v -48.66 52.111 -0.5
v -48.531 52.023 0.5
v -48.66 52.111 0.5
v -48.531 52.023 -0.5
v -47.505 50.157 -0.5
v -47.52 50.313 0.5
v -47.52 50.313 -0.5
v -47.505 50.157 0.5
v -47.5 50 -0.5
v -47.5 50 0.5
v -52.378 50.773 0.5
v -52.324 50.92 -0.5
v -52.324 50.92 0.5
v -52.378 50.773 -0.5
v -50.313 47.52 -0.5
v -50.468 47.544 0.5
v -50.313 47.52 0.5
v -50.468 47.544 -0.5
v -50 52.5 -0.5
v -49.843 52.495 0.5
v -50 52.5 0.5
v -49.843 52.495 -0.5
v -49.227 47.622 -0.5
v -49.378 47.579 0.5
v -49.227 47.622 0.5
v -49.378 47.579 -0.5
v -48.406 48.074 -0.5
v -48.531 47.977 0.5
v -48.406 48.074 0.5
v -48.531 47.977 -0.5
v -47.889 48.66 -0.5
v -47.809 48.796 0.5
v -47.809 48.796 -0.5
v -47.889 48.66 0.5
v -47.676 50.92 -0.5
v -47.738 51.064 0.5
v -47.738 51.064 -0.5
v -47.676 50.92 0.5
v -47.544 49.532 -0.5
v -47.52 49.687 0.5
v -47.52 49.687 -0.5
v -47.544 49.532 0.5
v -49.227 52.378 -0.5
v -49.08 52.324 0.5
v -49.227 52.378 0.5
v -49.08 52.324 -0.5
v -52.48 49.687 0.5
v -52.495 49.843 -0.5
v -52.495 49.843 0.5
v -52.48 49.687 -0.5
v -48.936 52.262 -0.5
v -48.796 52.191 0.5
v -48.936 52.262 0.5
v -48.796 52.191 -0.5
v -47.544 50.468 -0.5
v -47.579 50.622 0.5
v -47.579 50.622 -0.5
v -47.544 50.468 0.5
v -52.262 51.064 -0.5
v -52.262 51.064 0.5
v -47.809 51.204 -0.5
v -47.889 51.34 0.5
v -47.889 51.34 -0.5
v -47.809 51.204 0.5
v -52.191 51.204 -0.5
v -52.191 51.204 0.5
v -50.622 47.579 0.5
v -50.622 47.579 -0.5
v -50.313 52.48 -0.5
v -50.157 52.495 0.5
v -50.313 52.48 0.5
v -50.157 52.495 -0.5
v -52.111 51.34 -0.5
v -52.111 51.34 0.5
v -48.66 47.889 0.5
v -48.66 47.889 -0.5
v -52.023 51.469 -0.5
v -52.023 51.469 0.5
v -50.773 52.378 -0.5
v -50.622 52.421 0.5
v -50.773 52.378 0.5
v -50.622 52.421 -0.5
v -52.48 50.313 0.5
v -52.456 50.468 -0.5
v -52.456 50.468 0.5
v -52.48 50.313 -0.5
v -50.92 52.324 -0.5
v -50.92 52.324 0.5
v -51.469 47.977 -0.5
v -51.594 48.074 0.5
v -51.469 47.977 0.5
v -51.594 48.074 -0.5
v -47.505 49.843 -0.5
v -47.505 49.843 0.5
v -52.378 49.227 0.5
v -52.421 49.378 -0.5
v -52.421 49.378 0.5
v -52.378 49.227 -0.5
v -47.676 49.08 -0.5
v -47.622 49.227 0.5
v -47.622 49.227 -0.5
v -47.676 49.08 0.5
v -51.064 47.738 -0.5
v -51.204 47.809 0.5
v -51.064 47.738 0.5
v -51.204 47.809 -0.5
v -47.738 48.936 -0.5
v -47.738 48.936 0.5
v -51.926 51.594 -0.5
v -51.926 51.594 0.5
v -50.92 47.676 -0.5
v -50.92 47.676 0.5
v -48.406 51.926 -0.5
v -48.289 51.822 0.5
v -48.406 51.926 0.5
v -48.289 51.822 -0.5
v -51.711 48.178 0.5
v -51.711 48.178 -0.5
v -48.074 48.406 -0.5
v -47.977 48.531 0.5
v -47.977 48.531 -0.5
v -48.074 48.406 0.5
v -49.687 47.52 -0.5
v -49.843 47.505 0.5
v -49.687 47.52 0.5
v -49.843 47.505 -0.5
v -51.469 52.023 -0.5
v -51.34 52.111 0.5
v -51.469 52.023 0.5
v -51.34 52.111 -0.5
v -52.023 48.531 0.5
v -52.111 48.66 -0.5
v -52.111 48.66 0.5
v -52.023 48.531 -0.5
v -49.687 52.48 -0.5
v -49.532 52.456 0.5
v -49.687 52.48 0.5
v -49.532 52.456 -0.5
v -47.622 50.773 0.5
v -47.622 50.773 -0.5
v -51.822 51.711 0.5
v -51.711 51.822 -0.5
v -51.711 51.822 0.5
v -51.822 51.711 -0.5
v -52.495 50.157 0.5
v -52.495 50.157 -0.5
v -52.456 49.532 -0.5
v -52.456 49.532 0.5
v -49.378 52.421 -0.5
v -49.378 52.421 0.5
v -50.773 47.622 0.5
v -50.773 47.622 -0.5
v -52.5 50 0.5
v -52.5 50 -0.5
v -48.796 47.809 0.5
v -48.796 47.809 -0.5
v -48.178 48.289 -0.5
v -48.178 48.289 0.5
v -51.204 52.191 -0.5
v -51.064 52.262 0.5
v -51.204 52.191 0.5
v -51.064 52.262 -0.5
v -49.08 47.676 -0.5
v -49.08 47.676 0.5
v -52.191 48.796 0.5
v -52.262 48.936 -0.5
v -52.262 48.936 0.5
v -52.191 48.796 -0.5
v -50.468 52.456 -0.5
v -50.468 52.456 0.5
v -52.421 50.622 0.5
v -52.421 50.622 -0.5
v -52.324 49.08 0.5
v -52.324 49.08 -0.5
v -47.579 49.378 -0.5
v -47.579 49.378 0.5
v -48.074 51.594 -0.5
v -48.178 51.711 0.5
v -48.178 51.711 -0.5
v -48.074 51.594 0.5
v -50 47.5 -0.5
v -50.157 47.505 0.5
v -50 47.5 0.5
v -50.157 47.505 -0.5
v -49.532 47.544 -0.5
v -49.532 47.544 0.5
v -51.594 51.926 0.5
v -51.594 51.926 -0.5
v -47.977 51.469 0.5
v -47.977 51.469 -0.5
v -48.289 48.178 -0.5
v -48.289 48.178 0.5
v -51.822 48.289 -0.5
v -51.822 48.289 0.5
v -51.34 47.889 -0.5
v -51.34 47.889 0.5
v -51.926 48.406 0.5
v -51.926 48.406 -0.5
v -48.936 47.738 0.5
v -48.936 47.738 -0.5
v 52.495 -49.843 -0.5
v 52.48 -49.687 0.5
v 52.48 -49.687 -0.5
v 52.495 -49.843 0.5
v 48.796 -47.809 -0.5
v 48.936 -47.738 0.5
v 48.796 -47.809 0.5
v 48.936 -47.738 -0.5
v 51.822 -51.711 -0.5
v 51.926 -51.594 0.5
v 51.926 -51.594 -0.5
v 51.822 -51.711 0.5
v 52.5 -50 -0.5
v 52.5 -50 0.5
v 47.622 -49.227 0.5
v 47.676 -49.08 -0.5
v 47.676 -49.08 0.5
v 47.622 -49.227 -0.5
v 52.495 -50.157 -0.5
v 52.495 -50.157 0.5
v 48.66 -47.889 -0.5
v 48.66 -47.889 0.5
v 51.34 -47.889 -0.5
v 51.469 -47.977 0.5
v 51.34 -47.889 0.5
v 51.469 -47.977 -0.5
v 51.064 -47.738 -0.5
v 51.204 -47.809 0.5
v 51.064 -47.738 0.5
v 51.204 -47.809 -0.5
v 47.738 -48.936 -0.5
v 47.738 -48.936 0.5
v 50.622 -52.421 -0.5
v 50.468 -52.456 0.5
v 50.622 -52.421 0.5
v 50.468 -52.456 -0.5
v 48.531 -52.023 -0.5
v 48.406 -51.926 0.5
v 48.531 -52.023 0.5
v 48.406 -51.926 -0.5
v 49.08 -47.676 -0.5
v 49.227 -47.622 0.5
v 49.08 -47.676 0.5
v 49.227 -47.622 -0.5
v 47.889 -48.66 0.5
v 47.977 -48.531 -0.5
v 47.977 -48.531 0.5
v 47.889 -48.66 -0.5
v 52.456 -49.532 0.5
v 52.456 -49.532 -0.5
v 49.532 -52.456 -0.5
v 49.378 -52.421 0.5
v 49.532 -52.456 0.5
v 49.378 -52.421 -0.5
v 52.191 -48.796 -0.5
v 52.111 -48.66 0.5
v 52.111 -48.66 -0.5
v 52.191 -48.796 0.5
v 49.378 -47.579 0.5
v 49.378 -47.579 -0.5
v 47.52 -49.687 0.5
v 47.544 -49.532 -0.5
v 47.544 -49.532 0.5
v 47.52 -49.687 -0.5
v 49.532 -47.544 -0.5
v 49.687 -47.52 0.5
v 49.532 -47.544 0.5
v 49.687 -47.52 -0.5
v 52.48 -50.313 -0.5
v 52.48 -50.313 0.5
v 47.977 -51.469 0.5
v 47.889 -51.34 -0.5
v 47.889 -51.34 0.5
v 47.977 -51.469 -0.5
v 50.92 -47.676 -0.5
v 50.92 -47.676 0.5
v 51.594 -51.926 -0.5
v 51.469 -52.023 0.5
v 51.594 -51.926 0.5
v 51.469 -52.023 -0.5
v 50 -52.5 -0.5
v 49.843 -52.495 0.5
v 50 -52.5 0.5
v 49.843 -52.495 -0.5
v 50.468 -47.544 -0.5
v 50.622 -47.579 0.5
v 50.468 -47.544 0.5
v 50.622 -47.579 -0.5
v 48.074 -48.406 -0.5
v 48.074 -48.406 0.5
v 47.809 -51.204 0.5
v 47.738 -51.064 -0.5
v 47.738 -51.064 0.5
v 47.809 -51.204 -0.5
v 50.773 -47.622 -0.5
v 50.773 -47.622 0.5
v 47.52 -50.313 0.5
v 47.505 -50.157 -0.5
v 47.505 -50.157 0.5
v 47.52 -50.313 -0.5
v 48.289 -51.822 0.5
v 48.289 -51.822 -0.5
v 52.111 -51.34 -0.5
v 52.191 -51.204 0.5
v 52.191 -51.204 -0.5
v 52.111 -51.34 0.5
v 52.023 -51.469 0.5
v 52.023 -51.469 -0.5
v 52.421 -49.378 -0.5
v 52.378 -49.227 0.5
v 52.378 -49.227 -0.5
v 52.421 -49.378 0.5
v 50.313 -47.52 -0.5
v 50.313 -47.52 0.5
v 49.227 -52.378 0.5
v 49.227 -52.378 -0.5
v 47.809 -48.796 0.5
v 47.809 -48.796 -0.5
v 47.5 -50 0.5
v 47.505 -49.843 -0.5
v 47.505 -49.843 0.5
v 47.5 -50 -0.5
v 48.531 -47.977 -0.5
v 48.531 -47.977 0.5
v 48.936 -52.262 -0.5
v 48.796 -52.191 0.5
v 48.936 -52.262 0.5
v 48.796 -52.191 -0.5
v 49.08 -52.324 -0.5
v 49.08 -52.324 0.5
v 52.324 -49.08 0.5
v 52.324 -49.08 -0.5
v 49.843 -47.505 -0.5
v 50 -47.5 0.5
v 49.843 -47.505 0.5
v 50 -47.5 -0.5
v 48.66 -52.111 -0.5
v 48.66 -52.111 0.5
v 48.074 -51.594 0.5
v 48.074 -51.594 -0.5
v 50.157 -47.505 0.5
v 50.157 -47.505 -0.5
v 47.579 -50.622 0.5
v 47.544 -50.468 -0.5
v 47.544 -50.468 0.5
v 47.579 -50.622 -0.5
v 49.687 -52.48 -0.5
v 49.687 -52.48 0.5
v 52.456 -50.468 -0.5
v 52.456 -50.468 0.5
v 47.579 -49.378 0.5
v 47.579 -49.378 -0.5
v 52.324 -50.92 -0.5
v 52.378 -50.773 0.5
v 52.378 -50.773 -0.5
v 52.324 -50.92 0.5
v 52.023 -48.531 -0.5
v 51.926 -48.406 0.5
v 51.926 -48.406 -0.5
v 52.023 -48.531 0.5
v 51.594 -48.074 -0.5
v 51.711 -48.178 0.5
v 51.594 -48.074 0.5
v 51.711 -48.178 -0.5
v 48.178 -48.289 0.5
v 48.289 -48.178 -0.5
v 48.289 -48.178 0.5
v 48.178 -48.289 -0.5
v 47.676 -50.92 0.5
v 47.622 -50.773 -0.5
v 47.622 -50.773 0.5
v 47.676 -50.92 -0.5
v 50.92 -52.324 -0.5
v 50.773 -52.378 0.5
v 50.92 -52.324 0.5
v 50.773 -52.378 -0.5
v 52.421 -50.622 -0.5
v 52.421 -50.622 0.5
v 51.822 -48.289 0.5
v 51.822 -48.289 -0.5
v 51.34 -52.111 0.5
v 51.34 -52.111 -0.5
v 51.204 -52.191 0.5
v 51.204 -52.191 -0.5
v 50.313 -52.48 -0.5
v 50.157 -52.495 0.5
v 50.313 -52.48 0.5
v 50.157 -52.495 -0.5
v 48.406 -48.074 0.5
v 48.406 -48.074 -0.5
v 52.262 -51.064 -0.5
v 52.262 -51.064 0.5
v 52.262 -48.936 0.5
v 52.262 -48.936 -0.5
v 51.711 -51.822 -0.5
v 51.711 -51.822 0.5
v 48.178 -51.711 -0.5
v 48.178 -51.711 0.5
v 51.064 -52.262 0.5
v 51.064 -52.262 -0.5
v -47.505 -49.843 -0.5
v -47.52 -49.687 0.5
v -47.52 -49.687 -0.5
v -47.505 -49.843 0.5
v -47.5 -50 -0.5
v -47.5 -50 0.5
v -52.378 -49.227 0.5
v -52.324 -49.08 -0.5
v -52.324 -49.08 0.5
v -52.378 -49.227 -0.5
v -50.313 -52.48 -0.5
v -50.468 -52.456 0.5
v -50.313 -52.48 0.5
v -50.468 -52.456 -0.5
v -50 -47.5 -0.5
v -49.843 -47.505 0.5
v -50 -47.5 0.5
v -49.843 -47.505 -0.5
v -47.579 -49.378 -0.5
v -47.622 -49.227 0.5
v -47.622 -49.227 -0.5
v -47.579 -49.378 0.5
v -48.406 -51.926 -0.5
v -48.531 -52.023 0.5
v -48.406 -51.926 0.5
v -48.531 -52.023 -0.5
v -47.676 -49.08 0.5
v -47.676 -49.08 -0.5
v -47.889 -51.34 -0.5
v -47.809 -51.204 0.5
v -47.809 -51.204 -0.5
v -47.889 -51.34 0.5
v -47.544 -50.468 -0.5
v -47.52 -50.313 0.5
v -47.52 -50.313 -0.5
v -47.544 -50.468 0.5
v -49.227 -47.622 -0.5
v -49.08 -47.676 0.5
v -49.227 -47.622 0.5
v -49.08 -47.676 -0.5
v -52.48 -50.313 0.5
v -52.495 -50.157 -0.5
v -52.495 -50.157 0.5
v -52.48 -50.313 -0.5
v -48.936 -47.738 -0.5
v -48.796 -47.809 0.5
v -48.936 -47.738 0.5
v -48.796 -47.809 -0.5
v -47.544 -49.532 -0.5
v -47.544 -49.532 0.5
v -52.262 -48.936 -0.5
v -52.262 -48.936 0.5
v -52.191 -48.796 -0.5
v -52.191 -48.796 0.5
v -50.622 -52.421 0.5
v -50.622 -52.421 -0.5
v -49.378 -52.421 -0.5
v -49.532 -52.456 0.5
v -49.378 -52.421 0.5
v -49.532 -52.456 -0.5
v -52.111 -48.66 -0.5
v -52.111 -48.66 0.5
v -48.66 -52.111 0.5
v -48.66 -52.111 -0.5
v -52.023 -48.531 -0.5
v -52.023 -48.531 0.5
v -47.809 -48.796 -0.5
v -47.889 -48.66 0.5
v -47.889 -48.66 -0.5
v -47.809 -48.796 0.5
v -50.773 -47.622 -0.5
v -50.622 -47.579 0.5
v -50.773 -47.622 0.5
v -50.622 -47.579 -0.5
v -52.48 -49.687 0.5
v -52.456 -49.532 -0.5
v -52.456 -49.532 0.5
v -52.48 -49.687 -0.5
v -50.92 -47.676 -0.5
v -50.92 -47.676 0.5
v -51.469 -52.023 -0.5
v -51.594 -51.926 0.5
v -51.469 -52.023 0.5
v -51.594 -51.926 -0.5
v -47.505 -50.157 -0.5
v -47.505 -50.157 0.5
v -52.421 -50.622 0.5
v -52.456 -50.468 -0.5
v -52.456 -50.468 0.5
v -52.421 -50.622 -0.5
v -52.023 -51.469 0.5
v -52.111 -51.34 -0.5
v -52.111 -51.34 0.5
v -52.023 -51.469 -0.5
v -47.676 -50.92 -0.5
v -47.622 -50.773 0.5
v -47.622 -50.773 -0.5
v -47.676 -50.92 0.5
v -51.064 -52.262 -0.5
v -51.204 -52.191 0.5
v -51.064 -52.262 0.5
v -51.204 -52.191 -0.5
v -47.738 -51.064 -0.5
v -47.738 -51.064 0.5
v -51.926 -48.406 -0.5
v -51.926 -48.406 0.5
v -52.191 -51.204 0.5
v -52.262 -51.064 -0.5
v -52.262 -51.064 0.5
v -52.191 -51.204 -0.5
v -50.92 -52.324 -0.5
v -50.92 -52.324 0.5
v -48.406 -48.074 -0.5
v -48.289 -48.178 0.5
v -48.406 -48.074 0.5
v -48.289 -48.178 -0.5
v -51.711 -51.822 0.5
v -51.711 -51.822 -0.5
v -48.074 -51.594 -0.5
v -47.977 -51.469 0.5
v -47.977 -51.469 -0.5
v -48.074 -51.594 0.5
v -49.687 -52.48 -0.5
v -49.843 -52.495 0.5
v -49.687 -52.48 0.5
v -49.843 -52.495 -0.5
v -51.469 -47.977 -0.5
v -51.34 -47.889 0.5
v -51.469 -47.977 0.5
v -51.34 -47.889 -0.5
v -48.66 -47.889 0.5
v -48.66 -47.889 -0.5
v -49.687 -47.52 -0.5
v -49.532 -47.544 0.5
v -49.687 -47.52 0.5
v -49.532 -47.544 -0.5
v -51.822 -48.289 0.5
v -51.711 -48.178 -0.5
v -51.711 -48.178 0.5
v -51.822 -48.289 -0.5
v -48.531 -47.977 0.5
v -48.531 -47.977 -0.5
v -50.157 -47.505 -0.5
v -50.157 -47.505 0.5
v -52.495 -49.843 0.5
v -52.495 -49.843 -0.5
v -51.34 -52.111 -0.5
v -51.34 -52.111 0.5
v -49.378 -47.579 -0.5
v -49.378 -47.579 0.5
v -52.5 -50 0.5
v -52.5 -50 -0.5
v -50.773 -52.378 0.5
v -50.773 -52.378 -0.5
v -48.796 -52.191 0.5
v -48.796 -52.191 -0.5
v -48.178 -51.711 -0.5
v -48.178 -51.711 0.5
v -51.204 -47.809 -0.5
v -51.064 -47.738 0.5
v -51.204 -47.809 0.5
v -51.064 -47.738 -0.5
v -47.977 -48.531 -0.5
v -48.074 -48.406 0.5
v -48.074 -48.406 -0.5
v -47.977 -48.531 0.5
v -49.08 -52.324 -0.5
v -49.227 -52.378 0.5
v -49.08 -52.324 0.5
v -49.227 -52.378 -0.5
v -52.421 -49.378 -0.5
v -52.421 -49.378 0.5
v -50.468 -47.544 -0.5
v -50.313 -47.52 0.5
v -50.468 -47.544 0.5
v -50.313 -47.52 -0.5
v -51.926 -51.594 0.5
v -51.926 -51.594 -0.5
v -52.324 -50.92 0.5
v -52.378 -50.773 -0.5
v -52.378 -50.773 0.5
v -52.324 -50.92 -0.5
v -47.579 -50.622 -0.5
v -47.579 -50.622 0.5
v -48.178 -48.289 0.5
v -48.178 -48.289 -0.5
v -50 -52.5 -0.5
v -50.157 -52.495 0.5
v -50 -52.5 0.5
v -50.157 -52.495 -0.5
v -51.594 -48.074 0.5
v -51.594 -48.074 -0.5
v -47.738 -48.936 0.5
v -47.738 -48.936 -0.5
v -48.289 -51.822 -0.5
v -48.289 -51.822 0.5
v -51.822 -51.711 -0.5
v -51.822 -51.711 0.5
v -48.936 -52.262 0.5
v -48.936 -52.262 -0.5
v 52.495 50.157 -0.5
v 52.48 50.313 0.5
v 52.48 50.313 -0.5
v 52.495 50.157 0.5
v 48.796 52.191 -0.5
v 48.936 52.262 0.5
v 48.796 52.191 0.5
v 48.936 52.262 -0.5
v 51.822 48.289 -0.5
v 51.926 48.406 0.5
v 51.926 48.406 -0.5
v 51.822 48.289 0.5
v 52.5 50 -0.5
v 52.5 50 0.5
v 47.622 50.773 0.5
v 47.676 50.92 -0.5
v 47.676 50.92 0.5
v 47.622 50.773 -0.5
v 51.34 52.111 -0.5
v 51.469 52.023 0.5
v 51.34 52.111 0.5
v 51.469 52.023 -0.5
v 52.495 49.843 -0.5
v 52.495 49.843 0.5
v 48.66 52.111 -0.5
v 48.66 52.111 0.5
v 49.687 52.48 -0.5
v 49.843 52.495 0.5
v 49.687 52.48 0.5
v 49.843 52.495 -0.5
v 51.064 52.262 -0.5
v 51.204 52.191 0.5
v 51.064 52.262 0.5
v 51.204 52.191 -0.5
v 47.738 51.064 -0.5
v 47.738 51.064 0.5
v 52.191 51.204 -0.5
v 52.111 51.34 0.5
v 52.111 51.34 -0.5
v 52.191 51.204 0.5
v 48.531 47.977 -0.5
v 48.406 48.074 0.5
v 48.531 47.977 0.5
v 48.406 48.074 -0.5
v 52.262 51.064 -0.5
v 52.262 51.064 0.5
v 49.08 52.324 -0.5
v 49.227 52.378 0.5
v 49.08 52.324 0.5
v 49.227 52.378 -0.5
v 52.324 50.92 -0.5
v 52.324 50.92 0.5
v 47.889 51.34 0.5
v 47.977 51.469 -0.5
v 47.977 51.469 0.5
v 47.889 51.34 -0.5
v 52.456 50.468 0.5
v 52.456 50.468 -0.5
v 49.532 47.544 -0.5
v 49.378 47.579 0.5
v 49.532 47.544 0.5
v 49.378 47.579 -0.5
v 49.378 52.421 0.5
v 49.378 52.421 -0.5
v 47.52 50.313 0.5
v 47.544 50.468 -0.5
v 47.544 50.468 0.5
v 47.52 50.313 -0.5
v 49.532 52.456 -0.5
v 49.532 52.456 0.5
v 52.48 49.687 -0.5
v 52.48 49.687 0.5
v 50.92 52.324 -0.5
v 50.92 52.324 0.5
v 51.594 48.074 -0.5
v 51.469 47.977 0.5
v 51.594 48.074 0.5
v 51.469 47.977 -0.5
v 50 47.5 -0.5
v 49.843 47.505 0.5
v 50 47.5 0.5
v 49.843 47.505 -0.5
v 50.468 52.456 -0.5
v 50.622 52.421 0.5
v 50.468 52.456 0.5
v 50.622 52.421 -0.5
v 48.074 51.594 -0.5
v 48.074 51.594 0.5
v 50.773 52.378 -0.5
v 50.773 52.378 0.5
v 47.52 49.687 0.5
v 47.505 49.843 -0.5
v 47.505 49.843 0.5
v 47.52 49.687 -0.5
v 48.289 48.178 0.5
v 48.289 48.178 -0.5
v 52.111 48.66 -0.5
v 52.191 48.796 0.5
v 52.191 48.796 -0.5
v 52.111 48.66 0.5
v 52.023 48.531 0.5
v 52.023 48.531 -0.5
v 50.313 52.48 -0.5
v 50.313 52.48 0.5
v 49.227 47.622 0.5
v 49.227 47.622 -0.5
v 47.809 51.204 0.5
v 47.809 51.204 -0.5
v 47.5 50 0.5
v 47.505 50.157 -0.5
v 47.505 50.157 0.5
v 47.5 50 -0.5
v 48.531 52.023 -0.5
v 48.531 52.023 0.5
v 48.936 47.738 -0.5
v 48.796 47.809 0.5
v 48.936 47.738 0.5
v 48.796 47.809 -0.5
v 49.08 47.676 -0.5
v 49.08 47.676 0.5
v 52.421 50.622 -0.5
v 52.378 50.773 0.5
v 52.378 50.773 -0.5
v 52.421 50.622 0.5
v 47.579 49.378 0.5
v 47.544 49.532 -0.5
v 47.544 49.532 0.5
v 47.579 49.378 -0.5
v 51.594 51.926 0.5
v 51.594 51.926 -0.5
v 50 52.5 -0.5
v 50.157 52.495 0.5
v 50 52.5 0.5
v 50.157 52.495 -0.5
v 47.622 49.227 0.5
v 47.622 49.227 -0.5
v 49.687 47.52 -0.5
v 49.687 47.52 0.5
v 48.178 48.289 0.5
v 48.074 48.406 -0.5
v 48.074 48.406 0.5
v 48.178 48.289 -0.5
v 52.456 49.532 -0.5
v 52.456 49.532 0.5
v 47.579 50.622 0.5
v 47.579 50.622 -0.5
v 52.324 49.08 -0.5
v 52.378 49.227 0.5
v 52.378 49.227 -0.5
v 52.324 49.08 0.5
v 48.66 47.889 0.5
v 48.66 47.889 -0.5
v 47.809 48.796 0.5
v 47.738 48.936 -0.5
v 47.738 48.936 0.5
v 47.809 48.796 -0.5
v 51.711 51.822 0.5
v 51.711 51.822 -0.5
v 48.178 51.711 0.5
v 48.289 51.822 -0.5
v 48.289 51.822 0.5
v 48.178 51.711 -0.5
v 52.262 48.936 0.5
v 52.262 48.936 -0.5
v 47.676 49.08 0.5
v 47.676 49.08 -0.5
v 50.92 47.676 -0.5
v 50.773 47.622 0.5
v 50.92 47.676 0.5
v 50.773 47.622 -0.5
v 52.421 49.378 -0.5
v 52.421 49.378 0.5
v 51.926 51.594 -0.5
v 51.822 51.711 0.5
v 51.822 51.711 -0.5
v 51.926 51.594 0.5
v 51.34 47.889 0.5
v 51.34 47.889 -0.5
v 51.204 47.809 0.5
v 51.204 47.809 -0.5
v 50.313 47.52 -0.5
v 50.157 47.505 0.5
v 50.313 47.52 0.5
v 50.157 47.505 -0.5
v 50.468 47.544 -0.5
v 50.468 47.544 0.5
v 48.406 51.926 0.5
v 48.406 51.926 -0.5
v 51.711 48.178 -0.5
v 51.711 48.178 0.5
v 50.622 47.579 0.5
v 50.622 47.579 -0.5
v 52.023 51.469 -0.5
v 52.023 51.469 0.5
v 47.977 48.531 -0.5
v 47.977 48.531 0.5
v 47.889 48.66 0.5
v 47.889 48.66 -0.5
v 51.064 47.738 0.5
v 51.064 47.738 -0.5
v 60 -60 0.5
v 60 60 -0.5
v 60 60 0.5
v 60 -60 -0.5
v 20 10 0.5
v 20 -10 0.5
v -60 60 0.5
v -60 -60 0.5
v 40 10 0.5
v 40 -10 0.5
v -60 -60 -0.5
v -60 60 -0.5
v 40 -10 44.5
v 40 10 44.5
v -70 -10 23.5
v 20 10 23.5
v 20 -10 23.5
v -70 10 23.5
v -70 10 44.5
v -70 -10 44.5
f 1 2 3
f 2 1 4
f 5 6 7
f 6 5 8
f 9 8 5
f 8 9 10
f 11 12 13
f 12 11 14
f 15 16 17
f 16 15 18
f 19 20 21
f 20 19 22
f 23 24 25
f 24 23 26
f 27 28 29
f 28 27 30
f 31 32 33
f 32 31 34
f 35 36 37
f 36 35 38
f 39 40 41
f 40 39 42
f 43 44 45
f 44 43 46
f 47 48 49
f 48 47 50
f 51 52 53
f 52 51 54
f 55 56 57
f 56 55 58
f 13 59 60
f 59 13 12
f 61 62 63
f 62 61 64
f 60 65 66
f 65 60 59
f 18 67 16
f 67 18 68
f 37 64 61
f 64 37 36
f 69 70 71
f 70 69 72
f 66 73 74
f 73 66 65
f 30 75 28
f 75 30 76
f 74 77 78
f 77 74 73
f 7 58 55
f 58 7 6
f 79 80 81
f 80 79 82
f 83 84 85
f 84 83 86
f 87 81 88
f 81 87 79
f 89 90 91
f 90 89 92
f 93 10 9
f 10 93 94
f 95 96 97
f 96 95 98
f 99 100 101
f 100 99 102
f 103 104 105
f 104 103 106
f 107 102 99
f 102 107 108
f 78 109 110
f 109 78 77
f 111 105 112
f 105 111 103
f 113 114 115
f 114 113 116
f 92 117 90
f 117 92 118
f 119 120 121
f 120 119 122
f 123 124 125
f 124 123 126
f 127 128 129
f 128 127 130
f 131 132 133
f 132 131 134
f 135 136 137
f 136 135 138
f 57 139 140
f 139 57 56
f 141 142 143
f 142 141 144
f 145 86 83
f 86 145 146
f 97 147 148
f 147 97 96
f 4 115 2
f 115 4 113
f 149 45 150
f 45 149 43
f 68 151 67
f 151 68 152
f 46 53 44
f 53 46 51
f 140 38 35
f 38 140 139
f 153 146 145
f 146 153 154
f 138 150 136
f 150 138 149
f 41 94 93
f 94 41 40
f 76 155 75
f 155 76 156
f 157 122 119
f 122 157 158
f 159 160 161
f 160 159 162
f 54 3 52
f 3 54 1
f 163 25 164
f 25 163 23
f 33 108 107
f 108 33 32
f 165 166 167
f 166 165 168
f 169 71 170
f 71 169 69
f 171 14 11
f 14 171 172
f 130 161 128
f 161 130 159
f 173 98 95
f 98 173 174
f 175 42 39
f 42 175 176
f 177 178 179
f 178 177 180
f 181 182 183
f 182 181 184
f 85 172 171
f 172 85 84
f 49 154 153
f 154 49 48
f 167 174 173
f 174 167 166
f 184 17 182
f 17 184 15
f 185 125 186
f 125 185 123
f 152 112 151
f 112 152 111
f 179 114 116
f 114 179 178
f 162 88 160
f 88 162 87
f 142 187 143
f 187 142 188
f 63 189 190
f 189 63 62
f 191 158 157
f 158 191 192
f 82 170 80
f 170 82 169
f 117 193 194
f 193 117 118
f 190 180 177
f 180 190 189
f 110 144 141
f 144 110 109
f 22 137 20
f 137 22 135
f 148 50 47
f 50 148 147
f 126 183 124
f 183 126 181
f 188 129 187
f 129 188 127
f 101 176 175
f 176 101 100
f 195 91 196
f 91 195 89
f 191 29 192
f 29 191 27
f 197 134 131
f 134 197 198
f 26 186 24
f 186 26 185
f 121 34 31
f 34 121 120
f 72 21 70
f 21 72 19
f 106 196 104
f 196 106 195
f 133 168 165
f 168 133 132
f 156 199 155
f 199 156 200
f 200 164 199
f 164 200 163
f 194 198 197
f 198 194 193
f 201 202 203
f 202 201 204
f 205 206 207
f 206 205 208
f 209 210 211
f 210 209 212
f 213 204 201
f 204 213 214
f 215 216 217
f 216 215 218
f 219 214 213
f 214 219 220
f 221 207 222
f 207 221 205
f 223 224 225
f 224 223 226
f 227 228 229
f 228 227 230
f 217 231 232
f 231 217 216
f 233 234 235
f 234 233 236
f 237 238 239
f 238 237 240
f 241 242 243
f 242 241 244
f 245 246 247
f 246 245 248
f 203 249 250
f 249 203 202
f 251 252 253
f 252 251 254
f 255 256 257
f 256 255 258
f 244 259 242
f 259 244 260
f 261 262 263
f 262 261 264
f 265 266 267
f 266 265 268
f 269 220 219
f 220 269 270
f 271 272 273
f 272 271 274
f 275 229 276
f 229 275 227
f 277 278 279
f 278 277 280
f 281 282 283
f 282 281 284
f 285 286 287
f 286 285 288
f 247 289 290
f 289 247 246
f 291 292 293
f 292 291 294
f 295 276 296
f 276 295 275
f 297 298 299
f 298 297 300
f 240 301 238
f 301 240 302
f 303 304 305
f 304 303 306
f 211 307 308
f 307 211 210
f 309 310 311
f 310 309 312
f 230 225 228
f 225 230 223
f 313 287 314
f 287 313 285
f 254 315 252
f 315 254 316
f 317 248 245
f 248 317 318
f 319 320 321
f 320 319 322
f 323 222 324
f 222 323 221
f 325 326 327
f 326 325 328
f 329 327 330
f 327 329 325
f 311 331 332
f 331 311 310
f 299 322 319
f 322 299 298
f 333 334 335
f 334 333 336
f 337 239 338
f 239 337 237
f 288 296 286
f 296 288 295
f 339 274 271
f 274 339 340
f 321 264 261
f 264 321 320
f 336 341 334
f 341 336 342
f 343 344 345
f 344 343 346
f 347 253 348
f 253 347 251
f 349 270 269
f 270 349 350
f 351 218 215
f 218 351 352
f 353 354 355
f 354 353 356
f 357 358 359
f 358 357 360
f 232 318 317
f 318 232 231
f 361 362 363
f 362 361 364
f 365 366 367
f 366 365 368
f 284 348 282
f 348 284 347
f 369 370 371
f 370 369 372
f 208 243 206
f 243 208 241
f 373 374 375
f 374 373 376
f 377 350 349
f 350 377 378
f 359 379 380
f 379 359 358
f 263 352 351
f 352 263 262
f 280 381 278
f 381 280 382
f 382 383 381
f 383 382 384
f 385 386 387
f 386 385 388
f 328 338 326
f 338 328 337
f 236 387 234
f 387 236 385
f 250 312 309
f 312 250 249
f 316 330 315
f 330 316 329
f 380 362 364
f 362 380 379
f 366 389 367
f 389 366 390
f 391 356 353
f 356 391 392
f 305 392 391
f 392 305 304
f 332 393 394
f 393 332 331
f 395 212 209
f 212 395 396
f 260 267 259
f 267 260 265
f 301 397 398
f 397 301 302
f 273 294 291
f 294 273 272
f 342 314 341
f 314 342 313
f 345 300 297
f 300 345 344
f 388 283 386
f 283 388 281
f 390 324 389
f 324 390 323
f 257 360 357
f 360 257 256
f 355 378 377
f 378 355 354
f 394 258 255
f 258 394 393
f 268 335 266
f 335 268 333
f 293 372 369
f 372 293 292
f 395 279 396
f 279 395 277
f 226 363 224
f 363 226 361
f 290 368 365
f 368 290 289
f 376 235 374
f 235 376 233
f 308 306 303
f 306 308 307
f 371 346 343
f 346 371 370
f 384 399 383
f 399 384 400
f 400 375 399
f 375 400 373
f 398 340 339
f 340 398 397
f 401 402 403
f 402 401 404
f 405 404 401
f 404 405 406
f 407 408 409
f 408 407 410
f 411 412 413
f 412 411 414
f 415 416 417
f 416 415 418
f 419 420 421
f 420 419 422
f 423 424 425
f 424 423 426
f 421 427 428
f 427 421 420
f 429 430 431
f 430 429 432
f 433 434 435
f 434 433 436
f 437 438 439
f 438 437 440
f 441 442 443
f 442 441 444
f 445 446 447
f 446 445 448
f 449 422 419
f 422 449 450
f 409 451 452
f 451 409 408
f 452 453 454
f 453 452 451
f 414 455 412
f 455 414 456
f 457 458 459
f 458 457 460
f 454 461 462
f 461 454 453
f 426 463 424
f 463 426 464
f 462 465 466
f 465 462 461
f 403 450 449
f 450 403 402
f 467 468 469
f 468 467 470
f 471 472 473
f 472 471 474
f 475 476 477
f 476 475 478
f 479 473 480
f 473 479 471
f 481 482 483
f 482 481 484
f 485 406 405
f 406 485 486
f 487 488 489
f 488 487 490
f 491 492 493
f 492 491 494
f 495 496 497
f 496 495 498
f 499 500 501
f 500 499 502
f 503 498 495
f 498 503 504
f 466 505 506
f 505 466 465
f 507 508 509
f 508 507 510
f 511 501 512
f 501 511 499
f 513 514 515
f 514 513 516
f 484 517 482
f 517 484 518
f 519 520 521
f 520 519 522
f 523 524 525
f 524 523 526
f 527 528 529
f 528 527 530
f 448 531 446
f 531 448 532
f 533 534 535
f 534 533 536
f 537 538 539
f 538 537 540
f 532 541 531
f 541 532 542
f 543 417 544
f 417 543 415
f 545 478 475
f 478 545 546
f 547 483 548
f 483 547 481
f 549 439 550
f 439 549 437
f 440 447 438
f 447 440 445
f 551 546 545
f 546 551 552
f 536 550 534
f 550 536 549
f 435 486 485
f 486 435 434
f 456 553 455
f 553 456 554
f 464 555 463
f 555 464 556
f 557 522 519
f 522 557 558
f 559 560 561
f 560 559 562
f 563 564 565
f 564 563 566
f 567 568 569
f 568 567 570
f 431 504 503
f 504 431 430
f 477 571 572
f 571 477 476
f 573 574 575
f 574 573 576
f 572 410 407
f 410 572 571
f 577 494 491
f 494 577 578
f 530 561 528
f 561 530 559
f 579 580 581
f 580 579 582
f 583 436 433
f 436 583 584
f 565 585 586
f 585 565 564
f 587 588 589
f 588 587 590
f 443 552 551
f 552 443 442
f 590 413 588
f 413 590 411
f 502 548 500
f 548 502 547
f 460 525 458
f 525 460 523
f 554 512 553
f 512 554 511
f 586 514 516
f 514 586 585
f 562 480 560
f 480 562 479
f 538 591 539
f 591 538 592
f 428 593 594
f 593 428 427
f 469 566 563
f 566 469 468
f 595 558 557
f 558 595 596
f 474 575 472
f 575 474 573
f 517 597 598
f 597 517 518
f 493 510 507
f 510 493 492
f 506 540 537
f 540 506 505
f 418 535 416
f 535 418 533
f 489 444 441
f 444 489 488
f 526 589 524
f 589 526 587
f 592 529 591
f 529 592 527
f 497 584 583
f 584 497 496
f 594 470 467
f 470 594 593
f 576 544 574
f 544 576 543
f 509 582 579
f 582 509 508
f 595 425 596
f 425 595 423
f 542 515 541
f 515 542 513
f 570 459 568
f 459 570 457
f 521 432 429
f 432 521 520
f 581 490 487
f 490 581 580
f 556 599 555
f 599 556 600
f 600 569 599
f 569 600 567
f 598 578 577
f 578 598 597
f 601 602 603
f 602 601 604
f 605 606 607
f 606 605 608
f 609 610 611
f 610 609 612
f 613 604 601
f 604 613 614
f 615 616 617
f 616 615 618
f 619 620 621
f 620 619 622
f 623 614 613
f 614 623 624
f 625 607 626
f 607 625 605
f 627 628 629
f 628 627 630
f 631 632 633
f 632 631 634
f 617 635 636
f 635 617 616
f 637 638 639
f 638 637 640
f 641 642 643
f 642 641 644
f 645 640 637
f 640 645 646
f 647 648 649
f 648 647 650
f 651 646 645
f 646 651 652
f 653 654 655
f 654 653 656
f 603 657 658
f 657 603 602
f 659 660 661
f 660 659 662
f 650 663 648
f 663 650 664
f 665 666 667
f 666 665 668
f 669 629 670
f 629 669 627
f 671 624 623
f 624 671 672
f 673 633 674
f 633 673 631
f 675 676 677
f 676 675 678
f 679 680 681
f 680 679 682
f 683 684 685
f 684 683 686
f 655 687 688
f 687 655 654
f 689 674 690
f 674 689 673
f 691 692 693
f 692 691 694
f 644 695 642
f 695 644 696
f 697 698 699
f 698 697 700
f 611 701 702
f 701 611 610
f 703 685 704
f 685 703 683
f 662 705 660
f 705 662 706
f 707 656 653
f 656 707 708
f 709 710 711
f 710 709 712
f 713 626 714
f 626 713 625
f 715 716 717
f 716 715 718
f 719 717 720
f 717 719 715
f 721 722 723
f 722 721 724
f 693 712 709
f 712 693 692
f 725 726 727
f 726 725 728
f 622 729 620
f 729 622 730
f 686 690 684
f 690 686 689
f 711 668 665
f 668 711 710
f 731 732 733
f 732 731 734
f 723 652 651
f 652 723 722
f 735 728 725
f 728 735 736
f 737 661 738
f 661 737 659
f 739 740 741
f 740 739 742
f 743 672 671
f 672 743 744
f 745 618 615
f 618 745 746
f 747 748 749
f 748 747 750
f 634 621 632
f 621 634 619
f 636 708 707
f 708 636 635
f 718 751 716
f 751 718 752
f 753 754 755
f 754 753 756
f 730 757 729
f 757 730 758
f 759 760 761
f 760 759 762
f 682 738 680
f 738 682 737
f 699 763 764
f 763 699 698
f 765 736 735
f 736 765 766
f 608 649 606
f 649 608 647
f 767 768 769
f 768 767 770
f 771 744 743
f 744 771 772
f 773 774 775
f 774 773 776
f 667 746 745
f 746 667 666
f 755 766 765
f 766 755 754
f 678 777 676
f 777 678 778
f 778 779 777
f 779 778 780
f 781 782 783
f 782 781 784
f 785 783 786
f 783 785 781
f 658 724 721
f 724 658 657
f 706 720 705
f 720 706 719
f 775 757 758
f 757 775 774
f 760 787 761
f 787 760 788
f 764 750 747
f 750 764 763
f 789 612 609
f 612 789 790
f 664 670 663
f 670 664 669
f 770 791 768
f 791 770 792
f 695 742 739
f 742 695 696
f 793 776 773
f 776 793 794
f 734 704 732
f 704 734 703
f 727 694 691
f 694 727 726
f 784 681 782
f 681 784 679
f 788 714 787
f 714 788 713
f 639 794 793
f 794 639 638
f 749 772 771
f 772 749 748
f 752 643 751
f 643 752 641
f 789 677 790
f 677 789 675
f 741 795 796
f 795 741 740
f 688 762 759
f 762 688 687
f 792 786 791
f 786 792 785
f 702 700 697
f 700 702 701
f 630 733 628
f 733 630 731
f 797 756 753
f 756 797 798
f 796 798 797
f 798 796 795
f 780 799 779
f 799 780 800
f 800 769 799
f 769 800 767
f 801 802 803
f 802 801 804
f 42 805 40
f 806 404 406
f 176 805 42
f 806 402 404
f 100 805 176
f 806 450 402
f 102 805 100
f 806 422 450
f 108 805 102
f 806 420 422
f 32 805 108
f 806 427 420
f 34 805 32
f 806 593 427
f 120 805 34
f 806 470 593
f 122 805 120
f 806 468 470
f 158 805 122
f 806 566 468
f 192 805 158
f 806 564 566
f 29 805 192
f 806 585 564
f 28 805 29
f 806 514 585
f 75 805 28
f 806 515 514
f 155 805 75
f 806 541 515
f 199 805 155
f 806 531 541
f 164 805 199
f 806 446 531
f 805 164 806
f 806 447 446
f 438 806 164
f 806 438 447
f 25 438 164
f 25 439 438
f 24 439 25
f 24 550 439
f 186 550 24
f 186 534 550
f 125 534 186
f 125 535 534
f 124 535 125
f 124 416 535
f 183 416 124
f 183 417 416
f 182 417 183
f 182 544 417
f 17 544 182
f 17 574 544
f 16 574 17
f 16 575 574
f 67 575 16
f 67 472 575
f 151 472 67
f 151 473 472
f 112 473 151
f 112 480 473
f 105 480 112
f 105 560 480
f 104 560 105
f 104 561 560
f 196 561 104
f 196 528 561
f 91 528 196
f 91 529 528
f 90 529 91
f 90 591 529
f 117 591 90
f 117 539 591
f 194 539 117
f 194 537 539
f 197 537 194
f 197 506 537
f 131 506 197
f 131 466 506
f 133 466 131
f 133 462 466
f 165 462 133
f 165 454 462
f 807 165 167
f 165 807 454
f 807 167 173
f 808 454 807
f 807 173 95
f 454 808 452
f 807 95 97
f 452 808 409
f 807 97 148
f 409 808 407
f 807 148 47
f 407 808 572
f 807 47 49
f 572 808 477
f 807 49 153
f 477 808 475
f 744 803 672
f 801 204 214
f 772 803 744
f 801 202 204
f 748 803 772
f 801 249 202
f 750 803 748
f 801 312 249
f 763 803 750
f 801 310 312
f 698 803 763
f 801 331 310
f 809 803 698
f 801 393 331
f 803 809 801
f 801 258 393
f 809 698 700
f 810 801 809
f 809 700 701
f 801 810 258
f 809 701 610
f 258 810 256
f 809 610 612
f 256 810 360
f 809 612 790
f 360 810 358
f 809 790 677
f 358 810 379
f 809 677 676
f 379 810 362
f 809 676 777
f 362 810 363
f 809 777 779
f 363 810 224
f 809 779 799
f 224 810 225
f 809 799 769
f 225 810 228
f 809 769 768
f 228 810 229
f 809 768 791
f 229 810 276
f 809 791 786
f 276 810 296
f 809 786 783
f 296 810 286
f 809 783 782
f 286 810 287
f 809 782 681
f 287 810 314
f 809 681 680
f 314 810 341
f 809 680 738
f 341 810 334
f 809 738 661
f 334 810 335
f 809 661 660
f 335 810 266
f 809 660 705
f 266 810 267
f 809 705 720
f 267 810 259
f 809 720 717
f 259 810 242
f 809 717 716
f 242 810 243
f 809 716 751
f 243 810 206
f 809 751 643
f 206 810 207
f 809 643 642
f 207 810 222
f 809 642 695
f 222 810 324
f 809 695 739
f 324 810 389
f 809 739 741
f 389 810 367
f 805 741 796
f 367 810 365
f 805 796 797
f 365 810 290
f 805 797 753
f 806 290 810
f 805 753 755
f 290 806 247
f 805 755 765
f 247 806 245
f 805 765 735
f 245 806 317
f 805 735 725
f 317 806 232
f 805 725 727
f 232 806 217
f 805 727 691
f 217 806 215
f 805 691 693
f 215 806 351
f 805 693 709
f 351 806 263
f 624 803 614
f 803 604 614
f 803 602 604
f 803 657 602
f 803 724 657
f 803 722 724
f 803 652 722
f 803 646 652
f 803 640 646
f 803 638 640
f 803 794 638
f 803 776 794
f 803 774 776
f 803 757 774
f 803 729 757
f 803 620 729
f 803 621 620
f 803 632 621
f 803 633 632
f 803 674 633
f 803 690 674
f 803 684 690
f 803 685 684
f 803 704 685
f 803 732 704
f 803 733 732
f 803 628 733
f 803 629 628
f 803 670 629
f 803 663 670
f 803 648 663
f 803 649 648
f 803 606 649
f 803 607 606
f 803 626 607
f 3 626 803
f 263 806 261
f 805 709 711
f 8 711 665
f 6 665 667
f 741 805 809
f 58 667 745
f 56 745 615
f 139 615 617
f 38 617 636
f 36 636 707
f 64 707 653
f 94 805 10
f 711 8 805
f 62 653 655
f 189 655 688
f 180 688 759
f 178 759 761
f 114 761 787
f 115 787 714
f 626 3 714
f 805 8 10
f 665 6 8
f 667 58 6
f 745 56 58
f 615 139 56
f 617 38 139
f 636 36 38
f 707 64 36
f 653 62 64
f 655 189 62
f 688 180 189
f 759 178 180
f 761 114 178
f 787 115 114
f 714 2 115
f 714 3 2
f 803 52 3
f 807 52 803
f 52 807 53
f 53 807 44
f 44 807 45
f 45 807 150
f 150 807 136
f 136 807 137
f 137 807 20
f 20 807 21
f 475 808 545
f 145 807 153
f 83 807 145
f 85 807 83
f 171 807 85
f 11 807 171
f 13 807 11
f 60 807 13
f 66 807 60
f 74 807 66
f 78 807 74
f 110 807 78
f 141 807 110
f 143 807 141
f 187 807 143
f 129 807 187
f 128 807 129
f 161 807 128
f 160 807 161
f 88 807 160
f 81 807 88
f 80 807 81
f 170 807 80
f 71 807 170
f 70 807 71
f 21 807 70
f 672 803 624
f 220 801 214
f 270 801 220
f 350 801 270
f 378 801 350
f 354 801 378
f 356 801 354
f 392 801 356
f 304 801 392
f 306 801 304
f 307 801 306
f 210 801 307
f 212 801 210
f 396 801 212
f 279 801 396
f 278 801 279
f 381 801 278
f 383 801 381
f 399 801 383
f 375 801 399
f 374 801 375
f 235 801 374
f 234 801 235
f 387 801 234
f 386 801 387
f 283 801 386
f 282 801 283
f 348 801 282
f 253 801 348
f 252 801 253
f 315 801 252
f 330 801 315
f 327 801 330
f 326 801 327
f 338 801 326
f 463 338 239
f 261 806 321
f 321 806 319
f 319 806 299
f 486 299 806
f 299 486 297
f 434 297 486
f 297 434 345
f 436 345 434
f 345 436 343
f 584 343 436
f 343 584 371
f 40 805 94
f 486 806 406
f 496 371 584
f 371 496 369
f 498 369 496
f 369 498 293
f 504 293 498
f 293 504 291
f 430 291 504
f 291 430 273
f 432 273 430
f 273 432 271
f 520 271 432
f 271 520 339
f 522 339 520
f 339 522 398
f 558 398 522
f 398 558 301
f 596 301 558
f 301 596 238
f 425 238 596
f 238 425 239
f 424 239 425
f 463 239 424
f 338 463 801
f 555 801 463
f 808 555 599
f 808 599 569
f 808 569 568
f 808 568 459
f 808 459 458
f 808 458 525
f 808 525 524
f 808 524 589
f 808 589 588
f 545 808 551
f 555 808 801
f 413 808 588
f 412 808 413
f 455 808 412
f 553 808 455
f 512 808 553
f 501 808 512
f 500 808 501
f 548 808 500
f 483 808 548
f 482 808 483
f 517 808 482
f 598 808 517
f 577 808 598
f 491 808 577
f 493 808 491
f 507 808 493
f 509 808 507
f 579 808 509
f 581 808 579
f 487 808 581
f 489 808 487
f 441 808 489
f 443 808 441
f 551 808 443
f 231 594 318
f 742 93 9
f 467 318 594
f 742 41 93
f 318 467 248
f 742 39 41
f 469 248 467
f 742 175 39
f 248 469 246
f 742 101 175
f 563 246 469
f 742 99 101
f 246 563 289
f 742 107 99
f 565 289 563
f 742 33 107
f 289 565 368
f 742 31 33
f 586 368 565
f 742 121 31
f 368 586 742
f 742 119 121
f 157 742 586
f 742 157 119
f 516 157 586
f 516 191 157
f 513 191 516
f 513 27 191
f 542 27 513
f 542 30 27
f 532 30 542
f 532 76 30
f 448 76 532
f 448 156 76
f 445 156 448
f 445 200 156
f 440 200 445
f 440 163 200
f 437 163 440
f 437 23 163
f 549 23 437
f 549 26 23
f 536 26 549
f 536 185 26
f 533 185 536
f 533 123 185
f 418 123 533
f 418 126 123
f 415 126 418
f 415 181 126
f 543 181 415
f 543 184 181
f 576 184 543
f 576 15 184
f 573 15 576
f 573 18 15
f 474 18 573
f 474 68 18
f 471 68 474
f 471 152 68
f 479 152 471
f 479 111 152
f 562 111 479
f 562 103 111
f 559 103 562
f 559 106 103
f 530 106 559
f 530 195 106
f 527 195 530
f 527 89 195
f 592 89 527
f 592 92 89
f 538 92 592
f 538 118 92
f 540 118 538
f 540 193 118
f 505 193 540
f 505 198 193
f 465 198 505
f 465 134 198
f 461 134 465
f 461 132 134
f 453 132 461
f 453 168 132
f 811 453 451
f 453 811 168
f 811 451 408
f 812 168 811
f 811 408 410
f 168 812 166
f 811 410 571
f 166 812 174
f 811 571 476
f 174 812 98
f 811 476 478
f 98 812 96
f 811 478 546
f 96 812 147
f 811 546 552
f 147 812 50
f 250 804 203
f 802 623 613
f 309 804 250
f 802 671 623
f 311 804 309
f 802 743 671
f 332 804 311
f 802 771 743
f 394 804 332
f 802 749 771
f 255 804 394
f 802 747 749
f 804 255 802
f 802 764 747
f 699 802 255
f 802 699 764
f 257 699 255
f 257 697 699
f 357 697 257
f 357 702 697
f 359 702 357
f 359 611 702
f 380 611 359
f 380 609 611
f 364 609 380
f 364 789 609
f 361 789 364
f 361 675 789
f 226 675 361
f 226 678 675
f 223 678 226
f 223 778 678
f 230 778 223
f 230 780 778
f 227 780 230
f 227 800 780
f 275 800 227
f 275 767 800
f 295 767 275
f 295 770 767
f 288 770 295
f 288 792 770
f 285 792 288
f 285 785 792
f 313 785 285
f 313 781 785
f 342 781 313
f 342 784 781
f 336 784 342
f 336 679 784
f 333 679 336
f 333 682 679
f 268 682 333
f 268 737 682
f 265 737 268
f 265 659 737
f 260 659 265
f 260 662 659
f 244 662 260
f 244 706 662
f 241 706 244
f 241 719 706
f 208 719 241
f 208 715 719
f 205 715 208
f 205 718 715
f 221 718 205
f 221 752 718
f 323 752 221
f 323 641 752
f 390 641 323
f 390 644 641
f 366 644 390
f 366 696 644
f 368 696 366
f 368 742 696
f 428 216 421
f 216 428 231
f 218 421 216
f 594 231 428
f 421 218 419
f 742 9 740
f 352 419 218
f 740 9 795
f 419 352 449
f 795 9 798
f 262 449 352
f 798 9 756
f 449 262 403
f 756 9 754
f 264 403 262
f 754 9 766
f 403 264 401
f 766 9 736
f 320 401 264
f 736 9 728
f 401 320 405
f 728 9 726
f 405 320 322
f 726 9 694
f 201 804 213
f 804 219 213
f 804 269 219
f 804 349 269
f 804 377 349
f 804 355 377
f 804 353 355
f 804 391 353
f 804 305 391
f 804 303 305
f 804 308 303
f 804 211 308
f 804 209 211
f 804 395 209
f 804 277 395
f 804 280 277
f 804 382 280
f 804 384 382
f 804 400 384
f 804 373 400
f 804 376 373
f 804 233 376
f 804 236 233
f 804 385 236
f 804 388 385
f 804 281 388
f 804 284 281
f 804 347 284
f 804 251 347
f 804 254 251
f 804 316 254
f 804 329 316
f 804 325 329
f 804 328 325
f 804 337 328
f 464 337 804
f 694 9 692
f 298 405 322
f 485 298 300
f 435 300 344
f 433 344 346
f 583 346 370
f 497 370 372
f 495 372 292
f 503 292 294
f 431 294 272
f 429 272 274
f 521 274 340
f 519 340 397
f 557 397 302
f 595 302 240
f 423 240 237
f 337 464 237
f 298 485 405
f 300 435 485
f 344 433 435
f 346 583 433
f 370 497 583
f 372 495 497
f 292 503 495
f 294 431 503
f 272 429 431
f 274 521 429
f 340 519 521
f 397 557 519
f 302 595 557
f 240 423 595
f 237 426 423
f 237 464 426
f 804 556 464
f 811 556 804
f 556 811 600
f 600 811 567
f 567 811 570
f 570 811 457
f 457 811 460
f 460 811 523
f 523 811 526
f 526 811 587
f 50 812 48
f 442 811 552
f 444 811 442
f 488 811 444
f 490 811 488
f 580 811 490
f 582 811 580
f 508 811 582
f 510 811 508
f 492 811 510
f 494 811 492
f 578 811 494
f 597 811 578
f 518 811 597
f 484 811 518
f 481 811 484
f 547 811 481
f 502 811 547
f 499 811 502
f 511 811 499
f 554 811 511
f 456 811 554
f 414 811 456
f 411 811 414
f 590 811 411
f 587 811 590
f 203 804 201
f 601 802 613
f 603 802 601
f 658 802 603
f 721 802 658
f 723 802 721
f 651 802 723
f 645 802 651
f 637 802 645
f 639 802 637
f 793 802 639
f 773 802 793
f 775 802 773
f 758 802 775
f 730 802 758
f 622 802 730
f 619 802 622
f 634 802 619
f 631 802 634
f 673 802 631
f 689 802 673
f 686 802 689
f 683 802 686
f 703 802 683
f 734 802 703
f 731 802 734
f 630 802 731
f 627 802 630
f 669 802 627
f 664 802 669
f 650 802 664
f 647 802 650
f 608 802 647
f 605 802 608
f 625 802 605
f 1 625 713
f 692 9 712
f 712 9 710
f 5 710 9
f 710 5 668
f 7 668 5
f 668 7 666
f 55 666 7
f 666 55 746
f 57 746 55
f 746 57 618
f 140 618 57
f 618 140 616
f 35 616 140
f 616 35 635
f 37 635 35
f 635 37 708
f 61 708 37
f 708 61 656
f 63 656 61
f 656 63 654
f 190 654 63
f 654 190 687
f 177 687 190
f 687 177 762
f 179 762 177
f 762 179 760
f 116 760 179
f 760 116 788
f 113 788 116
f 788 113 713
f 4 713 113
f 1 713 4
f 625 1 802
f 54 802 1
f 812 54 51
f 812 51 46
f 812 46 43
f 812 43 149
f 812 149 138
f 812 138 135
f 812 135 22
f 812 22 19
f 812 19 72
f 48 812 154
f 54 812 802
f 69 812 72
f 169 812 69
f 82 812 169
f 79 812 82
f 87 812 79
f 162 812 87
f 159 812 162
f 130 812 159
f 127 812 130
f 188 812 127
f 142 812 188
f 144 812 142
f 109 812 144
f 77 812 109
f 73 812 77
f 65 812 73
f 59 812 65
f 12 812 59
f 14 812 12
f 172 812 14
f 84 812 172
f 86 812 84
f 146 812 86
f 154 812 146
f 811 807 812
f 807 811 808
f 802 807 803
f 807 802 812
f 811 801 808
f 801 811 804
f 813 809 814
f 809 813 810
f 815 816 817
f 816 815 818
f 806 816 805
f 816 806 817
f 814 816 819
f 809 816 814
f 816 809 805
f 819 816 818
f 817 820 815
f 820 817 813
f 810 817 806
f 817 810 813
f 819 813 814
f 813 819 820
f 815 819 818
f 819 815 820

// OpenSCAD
 
difference(){

    cube(size=[120,120,1], center=true);

    union(){
        translate([-50,50,-5])
        linear_extrude(100)
        circle(d=5, $fn=100);
    
        translate([50,-50,-5])
        linear_extrude(100)
        circle(d=5, $fn=100);
        
        translate([-50,-50,-5])
        linear_extrude(100)
        circle(d=5, $fn=100);
    
        translate([50,50,-5])
        linear_extrude(100)
        circle(d=5, $fn=100);
    }
}

translate([30,0,12])
cube(size=[20, 20, 23], center=true);

translate([-15,0,34])
cube(size=[110, 20, 21], center=true);
